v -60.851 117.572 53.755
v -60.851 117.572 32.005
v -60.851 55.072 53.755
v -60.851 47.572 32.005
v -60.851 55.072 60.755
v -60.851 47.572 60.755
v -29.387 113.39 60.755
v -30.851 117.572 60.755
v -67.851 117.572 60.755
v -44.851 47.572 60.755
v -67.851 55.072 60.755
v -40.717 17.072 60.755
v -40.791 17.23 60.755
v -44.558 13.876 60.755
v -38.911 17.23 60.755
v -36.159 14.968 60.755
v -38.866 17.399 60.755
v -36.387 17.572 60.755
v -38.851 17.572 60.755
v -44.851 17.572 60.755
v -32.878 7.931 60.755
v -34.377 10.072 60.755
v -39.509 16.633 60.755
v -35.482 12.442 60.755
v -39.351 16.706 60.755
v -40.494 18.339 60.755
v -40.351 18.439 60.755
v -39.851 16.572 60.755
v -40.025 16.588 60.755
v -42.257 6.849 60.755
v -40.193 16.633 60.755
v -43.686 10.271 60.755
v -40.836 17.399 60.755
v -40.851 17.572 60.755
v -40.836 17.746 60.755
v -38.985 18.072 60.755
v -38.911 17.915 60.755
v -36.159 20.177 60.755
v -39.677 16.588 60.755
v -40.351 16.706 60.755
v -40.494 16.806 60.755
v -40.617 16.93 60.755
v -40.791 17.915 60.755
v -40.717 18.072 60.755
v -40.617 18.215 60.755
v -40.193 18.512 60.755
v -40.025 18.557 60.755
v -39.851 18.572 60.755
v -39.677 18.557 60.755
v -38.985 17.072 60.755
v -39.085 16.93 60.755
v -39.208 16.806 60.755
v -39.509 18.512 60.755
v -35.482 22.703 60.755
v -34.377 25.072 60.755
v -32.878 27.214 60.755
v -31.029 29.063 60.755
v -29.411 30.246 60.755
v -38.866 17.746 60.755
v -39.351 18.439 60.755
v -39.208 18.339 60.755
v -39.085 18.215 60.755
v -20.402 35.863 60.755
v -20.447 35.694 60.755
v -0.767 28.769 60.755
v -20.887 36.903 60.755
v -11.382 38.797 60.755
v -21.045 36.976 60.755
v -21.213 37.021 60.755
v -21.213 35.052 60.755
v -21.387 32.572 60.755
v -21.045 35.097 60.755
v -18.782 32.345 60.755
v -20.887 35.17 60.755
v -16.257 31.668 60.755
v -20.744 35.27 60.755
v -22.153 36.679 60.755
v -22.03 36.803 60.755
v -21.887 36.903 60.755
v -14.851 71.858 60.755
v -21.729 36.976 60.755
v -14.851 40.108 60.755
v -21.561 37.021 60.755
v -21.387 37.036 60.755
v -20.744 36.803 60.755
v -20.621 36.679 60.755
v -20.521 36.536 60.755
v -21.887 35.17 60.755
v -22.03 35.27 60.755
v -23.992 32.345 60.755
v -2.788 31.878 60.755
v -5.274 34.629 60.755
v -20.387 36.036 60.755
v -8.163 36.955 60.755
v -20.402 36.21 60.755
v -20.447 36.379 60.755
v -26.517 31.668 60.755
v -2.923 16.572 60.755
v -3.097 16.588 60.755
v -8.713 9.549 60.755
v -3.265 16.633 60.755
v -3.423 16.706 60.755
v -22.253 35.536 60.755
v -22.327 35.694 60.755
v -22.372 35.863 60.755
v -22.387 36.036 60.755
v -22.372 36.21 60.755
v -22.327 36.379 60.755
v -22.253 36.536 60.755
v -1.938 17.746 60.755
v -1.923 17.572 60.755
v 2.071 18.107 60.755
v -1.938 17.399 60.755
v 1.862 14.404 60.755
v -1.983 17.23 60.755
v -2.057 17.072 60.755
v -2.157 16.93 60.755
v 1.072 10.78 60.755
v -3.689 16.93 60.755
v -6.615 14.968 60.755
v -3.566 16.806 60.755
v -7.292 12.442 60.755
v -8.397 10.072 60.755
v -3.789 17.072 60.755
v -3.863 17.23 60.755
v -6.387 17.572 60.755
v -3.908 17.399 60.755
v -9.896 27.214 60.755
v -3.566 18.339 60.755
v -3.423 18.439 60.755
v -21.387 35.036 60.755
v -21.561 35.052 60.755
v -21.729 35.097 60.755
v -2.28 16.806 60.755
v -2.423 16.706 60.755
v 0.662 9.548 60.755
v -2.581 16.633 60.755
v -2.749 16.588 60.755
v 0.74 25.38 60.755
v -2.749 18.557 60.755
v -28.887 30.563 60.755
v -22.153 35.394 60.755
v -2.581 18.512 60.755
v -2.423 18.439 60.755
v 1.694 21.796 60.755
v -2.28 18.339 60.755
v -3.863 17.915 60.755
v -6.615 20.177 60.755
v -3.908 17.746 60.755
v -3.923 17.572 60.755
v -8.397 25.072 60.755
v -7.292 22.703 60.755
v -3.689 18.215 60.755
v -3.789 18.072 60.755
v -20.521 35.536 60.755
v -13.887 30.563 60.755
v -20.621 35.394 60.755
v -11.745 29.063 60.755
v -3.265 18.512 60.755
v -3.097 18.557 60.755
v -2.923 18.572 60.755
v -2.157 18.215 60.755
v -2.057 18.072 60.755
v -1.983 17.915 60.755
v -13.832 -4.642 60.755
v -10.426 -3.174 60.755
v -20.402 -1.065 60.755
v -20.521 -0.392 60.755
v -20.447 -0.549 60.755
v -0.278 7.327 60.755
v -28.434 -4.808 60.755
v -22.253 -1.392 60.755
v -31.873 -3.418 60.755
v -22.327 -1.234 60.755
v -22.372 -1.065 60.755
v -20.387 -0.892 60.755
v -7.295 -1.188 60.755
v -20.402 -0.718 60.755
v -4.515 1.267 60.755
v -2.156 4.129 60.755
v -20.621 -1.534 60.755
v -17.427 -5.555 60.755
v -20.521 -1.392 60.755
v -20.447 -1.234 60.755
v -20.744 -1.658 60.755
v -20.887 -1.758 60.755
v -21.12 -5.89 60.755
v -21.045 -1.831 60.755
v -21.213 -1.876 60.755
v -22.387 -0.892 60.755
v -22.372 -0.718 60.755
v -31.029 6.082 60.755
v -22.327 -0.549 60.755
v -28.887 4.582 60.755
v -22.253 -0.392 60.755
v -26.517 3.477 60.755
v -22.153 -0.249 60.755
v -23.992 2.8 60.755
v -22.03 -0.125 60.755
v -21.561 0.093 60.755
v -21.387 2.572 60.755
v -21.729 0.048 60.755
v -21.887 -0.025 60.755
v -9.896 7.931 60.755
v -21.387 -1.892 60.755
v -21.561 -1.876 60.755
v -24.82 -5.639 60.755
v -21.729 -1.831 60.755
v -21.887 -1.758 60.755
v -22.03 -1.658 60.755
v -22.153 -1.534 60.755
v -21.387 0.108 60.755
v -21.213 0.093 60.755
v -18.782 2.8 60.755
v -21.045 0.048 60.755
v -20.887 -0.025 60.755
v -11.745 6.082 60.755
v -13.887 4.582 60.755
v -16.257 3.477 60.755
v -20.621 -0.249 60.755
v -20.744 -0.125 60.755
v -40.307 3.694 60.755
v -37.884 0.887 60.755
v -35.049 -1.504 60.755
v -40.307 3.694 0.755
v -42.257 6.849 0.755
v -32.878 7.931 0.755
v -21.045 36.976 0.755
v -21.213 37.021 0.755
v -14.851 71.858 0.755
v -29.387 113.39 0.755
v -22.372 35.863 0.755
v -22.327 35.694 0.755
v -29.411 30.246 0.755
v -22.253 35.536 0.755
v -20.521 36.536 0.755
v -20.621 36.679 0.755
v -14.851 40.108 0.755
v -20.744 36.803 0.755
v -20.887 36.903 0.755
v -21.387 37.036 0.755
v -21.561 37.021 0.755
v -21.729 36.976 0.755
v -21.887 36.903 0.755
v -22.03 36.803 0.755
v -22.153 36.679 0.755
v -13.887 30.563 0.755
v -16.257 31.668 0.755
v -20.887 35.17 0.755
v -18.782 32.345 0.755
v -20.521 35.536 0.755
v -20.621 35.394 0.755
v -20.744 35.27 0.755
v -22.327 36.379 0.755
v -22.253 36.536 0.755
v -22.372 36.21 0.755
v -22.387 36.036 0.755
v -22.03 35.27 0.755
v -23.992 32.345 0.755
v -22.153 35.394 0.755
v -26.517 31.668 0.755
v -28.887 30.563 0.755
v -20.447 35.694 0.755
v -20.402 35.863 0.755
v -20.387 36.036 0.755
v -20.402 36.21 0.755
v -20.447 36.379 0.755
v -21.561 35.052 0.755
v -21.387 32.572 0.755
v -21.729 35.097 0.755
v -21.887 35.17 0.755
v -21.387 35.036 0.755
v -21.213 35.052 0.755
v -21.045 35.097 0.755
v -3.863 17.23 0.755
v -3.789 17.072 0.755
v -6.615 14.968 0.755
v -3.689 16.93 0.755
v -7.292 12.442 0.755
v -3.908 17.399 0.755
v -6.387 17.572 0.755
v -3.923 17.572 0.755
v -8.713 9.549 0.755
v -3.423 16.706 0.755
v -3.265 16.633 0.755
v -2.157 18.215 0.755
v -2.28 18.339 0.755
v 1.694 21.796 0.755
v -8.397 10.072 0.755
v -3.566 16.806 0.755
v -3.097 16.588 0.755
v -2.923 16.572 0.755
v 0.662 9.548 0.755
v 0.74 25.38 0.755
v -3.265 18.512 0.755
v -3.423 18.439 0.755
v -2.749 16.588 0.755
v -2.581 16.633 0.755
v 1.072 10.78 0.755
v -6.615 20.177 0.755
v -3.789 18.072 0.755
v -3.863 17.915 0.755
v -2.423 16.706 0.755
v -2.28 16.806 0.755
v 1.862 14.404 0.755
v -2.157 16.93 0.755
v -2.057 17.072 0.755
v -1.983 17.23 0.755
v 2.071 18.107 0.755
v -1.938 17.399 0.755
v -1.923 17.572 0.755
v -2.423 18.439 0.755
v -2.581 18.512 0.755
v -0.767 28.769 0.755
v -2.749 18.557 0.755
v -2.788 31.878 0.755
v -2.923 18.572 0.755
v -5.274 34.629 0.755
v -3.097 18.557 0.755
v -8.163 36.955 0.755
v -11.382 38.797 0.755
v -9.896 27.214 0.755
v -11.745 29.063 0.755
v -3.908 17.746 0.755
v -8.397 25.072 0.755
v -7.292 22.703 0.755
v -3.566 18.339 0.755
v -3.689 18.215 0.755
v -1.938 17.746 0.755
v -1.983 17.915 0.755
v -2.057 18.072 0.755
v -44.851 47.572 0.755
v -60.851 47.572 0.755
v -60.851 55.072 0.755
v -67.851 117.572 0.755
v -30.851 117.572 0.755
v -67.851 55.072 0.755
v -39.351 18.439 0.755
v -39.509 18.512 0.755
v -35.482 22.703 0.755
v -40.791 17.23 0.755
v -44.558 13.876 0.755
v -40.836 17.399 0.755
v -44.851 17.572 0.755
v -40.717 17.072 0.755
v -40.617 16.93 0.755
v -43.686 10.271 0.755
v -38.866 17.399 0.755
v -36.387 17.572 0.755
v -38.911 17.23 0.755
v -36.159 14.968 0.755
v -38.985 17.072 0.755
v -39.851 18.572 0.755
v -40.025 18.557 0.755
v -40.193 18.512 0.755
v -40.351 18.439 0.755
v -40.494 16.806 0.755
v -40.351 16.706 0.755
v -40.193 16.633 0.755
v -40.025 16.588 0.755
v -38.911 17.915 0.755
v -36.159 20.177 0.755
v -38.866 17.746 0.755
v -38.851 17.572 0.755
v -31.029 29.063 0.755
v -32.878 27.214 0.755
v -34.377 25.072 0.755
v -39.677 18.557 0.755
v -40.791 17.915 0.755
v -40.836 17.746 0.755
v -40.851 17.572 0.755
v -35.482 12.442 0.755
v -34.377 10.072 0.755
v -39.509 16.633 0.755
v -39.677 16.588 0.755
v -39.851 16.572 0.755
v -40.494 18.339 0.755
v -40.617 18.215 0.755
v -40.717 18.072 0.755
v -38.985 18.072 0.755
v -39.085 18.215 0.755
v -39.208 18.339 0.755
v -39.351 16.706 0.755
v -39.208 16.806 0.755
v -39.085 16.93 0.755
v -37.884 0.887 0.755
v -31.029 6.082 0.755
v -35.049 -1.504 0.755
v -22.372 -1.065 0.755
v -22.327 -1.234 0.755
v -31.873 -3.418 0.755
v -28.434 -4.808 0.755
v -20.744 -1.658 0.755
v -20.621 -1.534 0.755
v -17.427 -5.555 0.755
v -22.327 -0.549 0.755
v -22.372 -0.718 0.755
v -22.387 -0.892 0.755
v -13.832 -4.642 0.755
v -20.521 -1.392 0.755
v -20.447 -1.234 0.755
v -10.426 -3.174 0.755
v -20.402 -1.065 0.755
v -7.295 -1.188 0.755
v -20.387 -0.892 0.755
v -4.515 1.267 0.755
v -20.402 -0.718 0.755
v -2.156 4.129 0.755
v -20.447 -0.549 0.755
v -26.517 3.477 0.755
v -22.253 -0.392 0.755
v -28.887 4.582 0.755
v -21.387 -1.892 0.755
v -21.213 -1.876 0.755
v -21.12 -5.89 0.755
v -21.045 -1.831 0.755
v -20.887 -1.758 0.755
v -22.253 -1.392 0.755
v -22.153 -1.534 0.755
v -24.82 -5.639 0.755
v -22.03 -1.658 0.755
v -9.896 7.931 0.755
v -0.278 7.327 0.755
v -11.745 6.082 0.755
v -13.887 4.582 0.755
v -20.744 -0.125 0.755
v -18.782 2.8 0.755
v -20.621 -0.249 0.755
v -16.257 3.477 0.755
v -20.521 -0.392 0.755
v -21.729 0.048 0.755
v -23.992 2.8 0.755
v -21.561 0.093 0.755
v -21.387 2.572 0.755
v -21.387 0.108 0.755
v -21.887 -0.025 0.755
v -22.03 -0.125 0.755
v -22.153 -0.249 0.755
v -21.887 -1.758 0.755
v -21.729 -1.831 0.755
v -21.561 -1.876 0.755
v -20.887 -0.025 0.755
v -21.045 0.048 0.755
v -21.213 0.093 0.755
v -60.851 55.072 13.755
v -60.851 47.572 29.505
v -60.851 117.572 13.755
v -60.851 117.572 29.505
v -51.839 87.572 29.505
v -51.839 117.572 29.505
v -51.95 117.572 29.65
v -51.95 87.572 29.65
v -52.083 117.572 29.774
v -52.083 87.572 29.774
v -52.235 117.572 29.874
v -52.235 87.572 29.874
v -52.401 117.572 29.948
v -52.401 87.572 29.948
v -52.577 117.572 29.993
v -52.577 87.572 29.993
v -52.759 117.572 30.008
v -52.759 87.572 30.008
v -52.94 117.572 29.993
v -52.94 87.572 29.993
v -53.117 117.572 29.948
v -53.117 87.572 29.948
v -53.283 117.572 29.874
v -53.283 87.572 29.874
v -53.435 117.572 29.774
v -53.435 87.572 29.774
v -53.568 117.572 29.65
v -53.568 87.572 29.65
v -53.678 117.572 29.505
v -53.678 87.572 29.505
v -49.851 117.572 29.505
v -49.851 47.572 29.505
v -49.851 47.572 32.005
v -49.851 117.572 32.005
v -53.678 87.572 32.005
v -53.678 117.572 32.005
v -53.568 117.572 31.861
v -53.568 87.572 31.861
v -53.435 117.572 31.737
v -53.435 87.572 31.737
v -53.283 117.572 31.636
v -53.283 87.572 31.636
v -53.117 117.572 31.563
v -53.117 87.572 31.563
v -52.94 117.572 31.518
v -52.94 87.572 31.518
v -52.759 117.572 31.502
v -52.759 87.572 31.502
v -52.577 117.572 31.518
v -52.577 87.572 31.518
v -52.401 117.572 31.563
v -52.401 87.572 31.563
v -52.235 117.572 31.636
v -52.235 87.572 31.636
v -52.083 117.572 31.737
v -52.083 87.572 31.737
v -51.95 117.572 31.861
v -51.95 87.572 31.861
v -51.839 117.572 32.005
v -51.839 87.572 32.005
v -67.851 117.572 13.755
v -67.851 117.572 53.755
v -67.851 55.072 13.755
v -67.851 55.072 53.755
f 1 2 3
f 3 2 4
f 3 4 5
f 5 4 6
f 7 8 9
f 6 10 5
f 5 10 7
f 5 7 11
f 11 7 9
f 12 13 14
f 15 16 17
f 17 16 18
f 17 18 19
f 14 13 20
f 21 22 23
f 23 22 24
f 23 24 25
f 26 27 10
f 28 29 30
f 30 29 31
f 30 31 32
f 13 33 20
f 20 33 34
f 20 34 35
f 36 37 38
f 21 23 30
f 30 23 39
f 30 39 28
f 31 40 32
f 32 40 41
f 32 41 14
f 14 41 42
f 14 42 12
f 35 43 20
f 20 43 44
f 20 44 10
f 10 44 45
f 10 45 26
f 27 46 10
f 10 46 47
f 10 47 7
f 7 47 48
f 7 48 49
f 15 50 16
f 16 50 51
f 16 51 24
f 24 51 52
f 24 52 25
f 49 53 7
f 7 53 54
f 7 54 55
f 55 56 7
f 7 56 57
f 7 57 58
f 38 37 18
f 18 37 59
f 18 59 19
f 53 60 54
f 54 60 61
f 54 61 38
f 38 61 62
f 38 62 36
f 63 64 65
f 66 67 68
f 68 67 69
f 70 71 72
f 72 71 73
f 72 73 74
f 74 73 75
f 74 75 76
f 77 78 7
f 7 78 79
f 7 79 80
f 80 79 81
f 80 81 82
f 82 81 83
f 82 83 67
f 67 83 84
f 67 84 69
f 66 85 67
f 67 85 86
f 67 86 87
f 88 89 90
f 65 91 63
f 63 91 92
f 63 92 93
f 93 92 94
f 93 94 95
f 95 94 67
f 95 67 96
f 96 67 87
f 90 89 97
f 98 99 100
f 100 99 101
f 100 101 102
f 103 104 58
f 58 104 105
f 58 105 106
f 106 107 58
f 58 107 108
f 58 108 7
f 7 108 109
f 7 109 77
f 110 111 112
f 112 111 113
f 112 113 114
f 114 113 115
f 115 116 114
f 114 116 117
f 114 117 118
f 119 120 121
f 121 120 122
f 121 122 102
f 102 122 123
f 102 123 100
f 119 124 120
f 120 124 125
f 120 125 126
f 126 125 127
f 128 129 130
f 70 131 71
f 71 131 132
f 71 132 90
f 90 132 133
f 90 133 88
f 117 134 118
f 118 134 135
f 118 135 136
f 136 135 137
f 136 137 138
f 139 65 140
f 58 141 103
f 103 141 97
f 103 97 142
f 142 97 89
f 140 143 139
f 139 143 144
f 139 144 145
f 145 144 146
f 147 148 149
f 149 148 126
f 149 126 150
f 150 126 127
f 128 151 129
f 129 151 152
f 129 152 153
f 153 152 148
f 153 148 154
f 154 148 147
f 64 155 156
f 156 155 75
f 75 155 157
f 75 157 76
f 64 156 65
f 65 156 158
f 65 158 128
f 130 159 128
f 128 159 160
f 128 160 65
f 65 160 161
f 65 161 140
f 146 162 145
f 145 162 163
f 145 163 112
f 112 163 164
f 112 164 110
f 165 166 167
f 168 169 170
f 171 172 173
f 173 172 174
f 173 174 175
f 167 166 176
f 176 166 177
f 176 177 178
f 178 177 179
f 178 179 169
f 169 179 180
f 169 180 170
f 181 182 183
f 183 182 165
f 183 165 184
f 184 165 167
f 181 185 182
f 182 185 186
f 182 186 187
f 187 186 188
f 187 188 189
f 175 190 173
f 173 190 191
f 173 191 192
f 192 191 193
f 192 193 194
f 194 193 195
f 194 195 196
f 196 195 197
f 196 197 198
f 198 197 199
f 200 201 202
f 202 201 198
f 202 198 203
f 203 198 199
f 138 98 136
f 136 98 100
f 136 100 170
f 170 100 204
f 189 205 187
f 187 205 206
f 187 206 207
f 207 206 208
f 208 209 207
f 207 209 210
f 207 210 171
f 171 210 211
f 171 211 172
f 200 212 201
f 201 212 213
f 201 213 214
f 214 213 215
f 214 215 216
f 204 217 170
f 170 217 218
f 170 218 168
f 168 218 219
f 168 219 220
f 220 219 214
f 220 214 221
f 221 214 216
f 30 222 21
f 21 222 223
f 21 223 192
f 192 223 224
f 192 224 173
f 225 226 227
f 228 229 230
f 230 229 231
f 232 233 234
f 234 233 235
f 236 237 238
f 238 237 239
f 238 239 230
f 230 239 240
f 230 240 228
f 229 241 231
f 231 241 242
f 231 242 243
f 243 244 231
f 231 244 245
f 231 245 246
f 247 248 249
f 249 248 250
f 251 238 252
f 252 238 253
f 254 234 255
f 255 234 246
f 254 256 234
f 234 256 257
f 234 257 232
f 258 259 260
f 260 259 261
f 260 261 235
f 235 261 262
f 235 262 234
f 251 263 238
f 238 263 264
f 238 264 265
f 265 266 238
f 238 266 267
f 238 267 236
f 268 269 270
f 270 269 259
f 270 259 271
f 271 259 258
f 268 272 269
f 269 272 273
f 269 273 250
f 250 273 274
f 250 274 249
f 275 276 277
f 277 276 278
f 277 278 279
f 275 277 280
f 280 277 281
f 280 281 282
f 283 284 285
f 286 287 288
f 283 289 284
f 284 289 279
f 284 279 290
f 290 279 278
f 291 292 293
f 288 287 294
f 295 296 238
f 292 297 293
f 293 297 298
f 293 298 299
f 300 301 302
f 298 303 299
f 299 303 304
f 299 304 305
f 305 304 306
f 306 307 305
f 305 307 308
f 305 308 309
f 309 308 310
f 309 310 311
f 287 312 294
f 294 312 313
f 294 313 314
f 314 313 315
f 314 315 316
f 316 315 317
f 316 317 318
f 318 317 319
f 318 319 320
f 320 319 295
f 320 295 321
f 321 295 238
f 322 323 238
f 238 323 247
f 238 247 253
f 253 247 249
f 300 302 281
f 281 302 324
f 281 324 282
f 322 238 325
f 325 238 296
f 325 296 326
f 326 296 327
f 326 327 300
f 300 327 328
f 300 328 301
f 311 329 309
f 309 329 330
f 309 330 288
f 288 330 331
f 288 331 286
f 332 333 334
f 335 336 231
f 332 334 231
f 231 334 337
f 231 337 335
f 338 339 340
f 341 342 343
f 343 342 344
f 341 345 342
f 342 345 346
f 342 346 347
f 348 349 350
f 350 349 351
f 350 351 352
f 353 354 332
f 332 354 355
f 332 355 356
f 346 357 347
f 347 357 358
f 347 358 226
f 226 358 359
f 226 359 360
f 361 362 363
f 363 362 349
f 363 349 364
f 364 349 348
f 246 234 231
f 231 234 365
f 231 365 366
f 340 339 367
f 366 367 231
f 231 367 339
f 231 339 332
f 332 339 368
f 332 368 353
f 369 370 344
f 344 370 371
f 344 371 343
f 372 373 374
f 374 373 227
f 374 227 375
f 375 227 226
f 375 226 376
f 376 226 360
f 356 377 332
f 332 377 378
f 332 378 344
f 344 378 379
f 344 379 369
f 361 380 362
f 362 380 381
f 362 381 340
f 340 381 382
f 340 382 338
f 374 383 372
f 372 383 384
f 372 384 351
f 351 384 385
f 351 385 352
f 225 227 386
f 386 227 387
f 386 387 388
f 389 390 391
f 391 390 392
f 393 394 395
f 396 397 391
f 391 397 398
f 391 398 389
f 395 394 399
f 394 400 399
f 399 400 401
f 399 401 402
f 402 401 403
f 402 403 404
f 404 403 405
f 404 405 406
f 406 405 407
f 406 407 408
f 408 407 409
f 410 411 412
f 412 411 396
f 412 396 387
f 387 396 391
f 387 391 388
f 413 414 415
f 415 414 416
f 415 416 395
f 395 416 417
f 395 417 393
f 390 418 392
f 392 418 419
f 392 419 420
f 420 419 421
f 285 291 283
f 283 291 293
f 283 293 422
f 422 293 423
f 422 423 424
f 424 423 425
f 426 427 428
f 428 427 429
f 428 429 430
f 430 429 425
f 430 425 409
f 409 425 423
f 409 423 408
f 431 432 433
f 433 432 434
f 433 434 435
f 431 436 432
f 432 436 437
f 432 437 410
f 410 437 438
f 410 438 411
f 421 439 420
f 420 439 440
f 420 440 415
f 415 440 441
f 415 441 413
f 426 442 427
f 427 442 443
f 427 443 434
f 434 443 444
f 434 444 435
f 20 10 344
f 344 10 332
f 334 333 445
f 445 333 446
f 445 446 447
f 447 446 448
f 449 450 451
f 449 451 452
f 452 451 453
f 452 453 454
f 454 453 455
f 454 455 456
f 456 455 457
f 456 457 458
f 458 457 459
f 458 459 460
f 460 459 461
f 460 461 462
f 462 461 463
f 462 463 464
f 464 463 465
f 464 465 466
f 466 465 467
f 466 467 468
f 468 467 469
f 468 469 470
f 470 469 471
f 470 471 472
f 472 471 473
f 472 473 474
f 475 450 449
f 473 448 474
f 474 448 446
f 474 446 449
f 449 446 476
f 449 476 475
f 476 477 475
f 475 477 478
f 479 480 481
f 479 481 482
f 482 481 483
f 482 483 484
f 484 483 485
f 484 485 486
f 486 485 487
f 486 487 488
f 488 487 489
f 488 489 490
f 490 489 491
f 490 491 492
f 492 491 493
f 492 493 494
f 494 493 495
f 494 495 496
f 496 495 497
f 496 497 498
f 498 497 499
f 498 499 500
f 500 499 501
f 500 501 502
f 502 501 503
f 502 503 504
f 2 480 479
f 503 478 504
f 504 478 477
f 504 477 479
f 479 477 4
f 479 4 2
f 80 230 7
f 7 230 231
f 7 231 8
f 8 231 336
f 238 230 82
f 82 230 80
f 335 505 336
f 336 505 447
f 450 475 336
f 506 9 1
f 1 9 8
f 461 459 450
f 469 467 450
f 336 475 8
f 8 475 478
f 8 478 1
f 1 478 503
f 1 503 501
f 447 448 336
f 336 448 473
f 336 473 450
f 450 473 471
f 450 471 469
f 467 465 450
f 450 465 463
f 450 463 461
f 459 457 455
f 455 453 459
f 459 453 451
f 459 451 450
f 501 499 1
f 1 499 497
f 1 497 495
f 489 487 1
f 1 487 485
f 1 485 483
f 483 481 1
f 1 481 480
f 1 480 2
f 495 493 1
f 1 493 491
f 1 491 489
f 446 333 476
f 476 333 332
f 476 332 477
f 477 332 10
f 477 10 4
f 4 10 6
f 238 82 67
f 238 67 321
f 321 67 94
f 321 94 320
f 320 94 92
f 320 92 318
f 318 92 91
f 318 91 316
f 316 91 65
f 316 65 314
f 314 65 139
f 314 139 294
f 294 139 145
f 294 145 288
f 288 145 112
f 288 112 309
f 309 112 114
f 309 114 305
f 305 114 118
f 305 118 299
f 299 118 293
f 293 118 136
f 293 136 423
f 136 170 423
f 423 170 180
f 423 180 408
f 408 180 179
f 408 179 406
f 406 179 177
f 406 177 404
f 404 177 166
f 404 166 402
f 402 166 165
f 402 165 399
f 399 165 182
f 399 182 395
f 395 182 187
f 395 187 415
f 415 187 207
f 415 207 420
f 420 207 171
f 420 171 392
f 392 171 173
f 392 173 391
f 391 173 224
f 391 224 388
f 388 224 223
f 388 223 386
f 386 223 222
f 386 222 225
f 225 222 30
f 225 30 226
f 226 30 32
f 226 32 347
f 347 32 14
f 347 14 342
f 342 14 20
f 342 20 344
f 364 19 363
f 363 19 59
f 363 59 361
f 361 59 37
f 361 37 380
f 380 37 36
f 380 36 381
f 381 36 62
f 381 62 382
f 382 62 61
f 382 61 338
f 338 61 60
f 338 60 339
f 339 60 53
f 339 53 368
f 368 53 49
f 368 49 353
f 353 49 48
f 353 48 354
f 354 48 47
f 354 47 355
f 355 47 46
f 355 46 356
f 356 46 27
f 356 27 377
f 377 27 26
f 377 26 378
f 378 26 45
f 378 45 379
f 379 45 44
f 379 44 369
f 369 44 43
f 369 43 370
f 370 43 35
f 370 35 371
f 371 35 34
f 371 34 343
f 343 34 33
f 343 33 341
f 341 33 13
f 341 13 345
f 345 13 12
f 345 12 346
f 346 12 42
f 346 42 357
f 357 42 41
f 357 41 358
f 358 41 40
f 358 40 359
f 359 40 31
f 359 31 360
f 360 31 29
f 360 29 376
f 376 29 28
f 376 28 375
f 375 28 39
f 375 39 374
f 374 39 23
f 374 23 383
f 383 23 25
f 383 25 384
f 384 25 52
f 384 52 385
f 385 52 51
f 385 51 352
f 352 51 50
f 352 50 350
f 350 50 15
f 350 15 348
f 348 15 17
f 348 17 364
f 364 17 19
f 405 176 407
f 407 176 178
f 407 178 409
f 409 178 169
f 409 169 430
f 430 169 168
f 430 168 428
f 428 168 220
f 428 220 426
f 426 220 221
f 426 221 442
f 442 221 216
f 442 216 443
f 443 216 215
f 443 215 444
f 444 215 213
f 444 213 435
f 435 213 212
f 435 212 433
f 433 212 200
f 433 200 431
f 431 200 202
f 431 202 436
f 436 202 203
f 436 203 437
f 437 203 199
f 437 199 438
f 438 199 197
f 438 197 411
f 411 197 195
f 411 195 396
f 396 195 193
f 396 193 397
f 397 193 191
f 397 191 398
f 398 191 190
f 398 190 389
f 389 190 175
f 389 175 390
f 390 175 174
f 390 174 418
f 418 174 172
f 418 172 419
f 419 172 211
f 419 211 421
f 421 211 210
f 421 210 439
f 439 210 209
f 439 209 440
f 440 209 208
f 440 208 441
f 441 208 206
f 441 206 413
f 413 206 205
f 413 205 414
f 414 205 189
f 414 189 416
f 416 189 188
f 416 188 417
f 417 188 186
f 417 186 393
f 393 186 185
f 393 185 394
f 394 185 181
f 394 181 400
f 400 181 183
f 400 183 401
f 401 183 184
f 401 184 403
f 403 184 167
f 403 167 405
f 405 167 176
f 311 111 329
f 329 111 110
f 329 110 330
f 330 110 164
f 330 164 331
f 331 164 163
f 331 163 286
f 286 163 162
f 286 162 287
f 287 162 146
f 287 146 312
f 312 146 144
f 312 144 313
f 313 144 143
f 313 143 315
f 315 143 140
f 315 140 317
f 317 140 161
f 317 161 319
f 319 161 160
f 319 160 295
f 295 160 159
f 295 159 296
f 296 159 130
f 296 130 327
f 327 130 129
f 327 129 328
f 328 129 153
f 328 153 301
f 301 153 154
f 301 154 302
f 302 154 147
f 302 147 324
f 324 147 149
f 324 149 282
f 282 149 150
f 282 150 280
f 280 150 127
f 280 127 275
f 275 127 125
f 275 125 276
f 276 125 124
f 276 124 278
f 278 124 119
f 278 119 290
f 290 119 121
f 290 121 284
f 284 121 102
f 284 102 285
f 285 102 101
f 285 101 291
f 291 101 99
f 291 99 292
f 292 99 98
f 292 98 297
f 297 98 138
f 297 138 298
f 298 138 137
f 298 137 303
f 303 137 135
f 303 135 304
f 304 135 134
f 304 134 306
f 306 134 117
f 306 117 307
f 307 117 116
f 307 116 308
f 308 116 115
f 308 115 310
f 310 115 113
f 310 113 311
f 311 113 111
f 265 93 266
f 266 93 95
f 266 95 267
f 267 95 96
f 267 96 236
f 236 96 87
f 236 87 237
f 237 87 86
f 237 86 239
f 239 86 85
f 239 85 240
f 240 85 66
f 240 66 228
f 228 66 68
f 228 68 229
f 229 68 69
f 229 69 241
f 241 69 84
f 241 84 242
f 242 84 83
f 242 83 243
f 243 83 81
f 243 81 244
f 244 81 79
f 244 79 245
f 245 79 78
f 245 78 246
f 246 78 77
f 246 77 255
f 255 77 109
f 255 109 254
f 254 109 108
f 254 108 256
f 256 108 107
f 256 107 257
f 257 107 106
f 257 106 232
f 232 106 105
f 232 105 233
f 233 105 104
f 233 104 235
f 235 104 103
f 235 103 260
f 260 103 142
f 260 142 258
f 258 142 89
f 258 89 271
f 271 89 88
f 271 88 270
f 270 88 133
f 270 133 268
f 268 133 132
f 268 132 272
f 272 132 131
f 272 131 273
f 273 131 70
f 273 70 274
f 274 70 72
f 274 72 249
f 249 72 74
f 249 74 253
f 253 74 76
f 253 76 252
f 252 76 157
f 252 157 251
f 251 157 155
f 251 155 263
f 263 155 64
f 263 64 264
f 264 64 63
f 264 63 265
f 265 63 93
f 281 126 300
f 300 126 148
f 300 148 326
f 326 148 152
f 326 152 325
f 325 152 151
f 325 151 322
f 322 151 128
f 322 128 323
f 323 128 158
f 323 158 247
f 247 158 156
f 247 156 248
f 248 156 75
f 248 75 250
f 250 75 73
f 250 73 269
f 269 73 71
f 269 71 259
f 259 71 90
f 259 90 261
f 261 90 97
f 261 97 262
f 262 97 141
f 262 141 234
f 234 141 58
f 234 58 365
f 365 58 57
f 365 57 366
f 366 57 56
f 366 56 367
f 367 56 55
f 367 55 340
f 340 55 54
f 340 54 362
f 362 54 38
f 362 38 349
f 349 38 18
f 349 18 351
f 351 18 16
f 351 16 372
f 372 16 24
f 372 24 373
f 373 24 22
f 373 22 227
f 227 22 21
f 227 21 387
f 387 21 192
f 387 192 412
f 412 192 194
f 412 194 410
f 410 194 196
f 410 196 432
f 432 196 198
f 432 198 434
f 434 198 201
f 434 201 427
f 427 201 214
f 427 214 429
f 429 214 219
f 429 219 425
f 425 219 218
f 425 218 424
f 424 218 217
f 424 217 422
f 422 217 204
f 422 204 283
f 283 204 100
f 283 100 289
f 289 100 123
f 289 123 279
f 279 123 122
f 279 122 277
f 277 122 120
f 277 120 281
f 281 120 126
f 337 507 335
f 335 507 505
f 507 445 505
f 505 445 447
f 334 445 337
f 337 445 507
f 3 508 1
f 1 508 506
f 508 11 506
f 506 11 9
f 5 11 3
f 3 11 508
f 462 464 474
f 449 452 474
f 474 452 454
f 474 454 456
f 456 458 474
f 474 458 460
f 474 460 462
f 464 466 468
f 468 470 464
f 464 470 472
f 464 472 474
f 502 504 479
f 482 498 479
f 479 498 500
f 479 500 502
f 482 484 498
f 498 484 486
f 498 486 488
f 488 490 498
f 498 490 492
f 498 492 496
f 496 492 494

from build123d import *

# Parameters (mm, degrees)
BOSS_EXTRUDE1_OUTLINE_R = 16
BOSS_EXTRUDE1_DEPTH     = 60
BOSS_EXTRUDE2_START     = -60
BOSS_EXTRUDE2_DEPTH     = 60
CUT_EXTRUDE1_DEPTH      = 145.395578885
CUT_EXTRUDE2_DEPTH      = 145.395578885
SKETCH5_W               = 40
SKETCH5_H               = 37.745966692
CUT_EXTRUDE5_DEPTH      = 146.348374233
BOSS_EXTRUDE3_START     = -60
BOSS_EXTRUDE3_DEPTH     = 60
CUT_EXTRUDE6_START      = -60
SKETCH10_4_R            = 1
CUT_EXTRUDE6_DEPTH      = 60
CUT_EXTRUDE7_DEPTH      = 60
BOSS_EXTRUDE4_DEPTH     = 70
SKETCH12_W              = 7
SKETCH12_H              = 13
SKETCH12_H_2            = 7
BOSS_EXTRUDE5_DEPTH     = 62.5
SKETCH13_W              = 11
SKETCH13_H              = 2.5
CUT_EXTRUDE8_DEPTH      = 40


# Read off the part's stored shape, not the designer's step: Boss-Extrude1, Boss-Extrude3
with BuildPart() as part:
    # Boss-Extrude1 outline → Boss-Extrude1 (new body)
    with BuildSketch(Plane.XY.offset(0.755461794)):
        with Locations((-30.851105688, 17.572500308)):
            Circle(BOSS_EXTRUDE1_OUTLINE_R)
        with BuildLine():
            Line((-28.166301776, 21.908607365), (-28.260226262, 22.19606428))
            ThreePointArc((-28.260226262, 22.19606428), (-28.158199405, 22.137394146), (-28.057500467, 22.076472985))
            Line((-28.057500467, 22.076472985), (-28.166301776, 21.908607365))
        make_face(mode=Mode.SUBTRACT)
    extrude(amount=BOSS_EXTRUDE1_DEPTH)

    # Sketch2 → Boss-Extrude2 (add)
    with BuildSketch(Plane.XY.offset(60.755461794).offset(BOSS_EXTRUDE2_START)):
        with BuildLine():
            Line((-60.851105688, 17.572500308), (-46.851105688, 17.572500308))
            ThreePointArc((-46.851105688, 17.572500308), (-30.851105688, 33.572500308), (-14.851105688, 17.572500308))
            Line((-14.851105688, 17.572500308), (-14.851105688, 71.858214594))
            Line((-14.851105688, 71.858214594), (-30.851105688, 117.572500308))
            Line((-30.851105688, 117.572500308), (-60.851105688, 117.572500308))
            Line((-60.851105688, 117.572500308), (-60.851105688, 17.572500308))
        make_face()
    extrude(amount=BOSS_EXTRUDE2_DEPTH)

    # Sketch3 → Cut-Extrude1 (cut, through all)
    with BuildSketch(Plane(origin=(0, 117.572500308, 0), x_dir=(1, 0, 0), z_dir=(0, 1, 0))):
        with BuildLine():
            Line((-60.851105688, -29.505461794), (-60.851105688, -32.005461794))
            Line((-60.851105688, -32.005461794), (-53.678502861, -32.005461794))
            ThreePointArc((-53.678502861, -32.005461794), (-52.758859998, -31.502501818), (-51.839217136, -32.005461794))
            Line((-51.839217136, -32.005461794), (-49.851105688, -32.005461794))
            Line((-49.851105688, -32.005461794), (-49.851105688, -29.505461794))
            Line((-49.851105688, -29.505461794), (-51.839217136, -29.505461794))
            ThreePointArc((-51.839217136, -29.505461794), (-52.758859998, -30.00842177), (-53.678502861, -29.505461794))
            Line((-53.678502861, -29.505461794), (-60.851105688, -29.505461794))
        make_face()
    extrude(amount=-CUT_EXTRUDE1_DEPTH, mode=Mode.SUBTRACT)

    # Sketch4 → Cut-Extrude2 (cut, through all)
    with BuildSketch(Plane(origin=(0, 117.572500308, 0), x_dir=(1, 0, 0), z_dir=(0, 1, 0))):
        Polygon((-60.851105688, -27.255461794), (-44.851105688, -0.755461794), (-60.851105688, -0.755461794), align=None)
        Polygon((-60.851105688, -34.255461794), (-44.851105688, -60.755461794), (-60.851105688, -60.755461794), align=None)
    extrude(amount=-CUT_EXTRUDE2_DEPTH, mode=Mode.SUBTRACT)

    # Sketch5 → Cut-Extrude5 (cut, through all)
    with BuildSketch(Plane(origin=(0, 0, 0.755461794), x_dir=(-1, 0, 0), z_dir=(0, 0, -1))):
        with Locations((64.851105688, 28.699516962)):
            Rectangle(SKETCH5_W, SKETCH5_H)
    extrude(amount=-CUT_EXTRUDE5_DEPTH, mode=Mode.SUBTRACT)

    # Boss-Extrude3 outline → Boss-Extrude3 (add)
    with BuildSketch(Plane.XY.offset(60.755461794).offset(BOSS_EXTRUDE3_START)):
        with BuildLine():
            ThreePointArc((-14.851105688, 17.572500308), (-24.419989547, 2.92187762), (-41.681198835, 5.795018301))
            ThreePointArc((-41.681198835, 5.795018301), (-2.90297286, 3.119259484), (-14.851105688, 40.107806589))
            Line((-14.851105688, 40.107806589), (-14.851105688, 17.572500308))
        make_face()
    extrude(amount=BOSS_EXTRUDE3_DEPTH)

    # Sketch10<4> → Cut-Extrude6 (cut)
    with BuildSketch(Plane.XY.offset(60.755461794).offset(CUT_EXTRUDE6_START)):
        with BuildLine():
            ThreePointArc((-44.851105688, 9.826533616), (-43.428731074, 7.682943208), (-41.681198835, 5.795018301))
            ThreePointArc((-41.681198835, 5.795018301), (-44.044774342, 11.474193332), (-44.851105688, 17.572500308))
            Line((-44.851105688, 17.572500308), (-44.851105688, 9.826533616))
        make_face()
        with BuildLine():
            ThreePointArc((-40.851105688, 17.572500308), (-39.851105688, 16.572500308), (-38.851105688, 17.572500308))
            Line((-38.851105688, 17.572500308), (-40.851105688, 17.572500308))
        make_face()
        with BuildLine():
            Line((-40.851105688, 17.572500308), (-38.851105688, 17.572500308))
            ThreePointArc((-38.851105688, 17.572500308), (-39.851105688, 18.572500308), (-40.851105688, 17.572500308))
        make_face()
        with BuildLine():
            ThreePointArc((-20.387105202, -0.891500177), (-20.679998421, -0.184393396), (-21.387105202, 0.108499823))
            Line((-21.387105202, 0.108499823), (-21.387105202, -1.891500177))
            ThreePointArc((-21.387105202, -1.891500177), (-20.679998421, -1.598606959), (-20.387105202, -0.891500177))
        make_face()
        with BuildLine():
            Line((-21.387105202, -1.891500177), (-21.387105202, 0.108499823))
            ThreePointArc((-21.387105202, 0.108499823), (-22.387105202, -0.891500177), (-21.387105202, -1.891500177))
        make_face()
        with BuildLine():
            ThreePointArc((-2.923104717, 18.572500308), (-3.630211498, 18.27960709), (-3.923104717, 17.572500308))
            Line((-3.923104717, 17.572500308), (-2.923104717, 17.572500308))
            Line((-2.923104717, 17.572500308), (-2.923104717, 18.572500308))
        make_face()
        with BuildLine():
            Line((-2.923104717, 17.572500308), (-3.923104717, 17.572500308))
            ThreePointArc((-3.923104717, 17.572500308), (-2.923104717, 16.572500308), (-1.923104717, 17.572500308))
            ThreePointArc((-1.923104717, 17.572500308), (-2.215997935, 18.27960709), (-2.923104717, 18.572500308))
            Line((-2.923104717, 18.572500308), (-2.923104717, 17.572500308))
        make_face()
        with Locations((-21.387105202, 36.036500794)):
            Circle(SKETCH10_4_R)
    extrude(amount=CUT_EXTRUDE6_DEPTH, mode=Mode.SUBTRACT)

    # Sketch10<5> → Cut-Extrude7 (cut)
    # profile 1 of 6: a face of its own
    with BuildSketch(Plane.XY.offset(60.755461794)):
        with BuildLine():
            ThreePointArc((-14.851105688, 17.572500308), (-16.578334273, 10.341456392), (-21.387105202, 4.671620695))
            Line((-21.387105202, 4.671620695), (-21.387105202, 2.572500308))
            ThreePointArc((-21.387105202, 2.572500308), (-10.780503485, 6.965898591), (-6.387105202, 17.572500308))
            Line((-6.387105202, 17.572500308), (-14.851105688, 17.572500308))
        make_face()
    # profile 2 of 6: a face of its own
    with BuildSketch(Plane.XY.offset(60.755461794)):
        with BuildLine():
            Line((-14.851105688, 31.073637681), (-14.851105688, 17.572500308))
            Line((-14.851105688, 17.572500308), (-6.387105202, 17.572500308))
            ThreePointArc((-6.387105202, 17.572500308), (-8.678053454, 25.539934252), (-14.851105688, 31.073637681))
        make_face()
    # profile 3 of 6: a face of its own
    with BuildSketch(Plane.XY.offset(60.755461794)):
        with BuildLine():
            Line((-30.851105688, 17.572500308), (-21.387105202, 17.572500308))
            Line((-21.387105202, 17.572500308), (-14.851105688, 17.572500308))
            Line((-14.851105688, 17.572500308), (-14.851105688, 31.073637681))
            ThreePointArc((-14.851105688, 31.073637681), (-29.354539146, 30.281552057), (-36.387105202, 17.572500308))
            Line((-36.387105202, 17.572500308), (-30.851105688, 17.572500308))
        make_face()
        with BuildLine():
            Line((-28.166301776, 21.908607365), (-28.260226262, 22.19606428))
            ThreePointArc((-28.260226262, 22.19606428), (-28.158199405, 22.137394146), (-28.057500467, 22.076472985))
            Line((-28.057500467, 22.076472985), (-28.166301776, 21.908607365))
        make_face(mode=Mode.SUBTRACT)
    # profile 4 of 6: a face of its own
    with BuildSketch(Plane.XY.offset(60.755461794)):
        with BuildLine():
            Line((-14.851105688, 17.572500308), (-21.387105202, 17.572500308))
            Line((-21.387105202, 17.572500308), (-21.387105202, 4.671620695))
            ThreePointArc((-21.387105202, 4.671620695), (-16.578334273, 10.341456392), (-14.851105688, 17.572500308))
        make_face()
    # profile 5 of 6: a face of its own
    with BuildSketch(Plane.XY.offset(60.755461794)):
        with BuildLine():
            Line((-21.387105202, 4.671620695), (-21.387105202, 17.572500308))
            Line((-21.387105202, 17.572500308), (-30.851105688, 17.572500308))
            Line((-30.851105688, 17.572500308), (-36.387105202, 17.572500308))
            ThreePointArc((-36.387105202, 17.572500308), (-33.036423327, 8.122982478), (-24.481320238, 2.895108397))
            ThreePointArc((-24.481320238, 2.895108397), (-22.884538469, 3.696845126), (-21.387105202, 4.671620695))
        make_face()
    # profile 6 of 6: a face of its own
    with BuildSketch(Plane.XY.offset(60.755461794)):
        with BuildLine():
            Line((-21.387105202, 2.572500308), (-21.387105202, 4.671620695))
            ThreePointArc((-21.387105202, 4.671620695), (-22.884538469, 3.696845126), (-24.481320238, 2.895108397))
            ThreePointArc((-24.481320238, 2.895108397), (-22.942598907, 2.653370329), (-21.387105202, 2.572500308))
        make_face()
    extrude(amount=-CUT_EXTRUDE7_DEPTH, mode=Mode.SUBTRACT)

    # Sketch11 → Boss-Extrude4 (add)
    with BuildSketch(Plane(origin=(0, 117.572500308, 0), x_dir=(1, 0, 0), z_dir=(0, 1, 0))):
        Polygon((-44.851105688, -0.755461794), (-60.851105688, -0.755461794), (-60.851105688, -27.255461794), align=None)
        Polygon((-60.851105688, -34.255461794), (-60.851105688, -60.755461794), (-44.851105688, -60.755461794), align=None)
    extrude(amount=-BOSS_EXTRUDE4_DEPTH)

    # Sketch12 → Boss-Extrude5 (add)
    with BuildSketch(Plane(origin=(0, 117.572500308, 0), x_dir=(1, 0, 0), z_dir=(0, 1, 0))):
        with Locations((-64.351105688, -7.255461794)):
            Rectangle(SKETCH12_W, SKETCH12_H)
        with Locations((-64.351105688, -57.255461794)):
            Rectangle(SKETCH12_W, SKETCH12_H_2)
    extrude(amount=-BOSS_EXTRUDE5_DEPTH)

    # Sketch13 → Cut-Extrude8 (cut)
    with BuildSketch(Plane.XZ.offset(-47.572500308)):
        with Locations((-55.351105688, 30.755461794)):
            Rectangle(SKETCH13_W, SKETCH13_H)
    extrude(amount=-CUT_EXTRUDE8_DEPTH, mode=Mode.SUBTRACT)


solid = part.part
